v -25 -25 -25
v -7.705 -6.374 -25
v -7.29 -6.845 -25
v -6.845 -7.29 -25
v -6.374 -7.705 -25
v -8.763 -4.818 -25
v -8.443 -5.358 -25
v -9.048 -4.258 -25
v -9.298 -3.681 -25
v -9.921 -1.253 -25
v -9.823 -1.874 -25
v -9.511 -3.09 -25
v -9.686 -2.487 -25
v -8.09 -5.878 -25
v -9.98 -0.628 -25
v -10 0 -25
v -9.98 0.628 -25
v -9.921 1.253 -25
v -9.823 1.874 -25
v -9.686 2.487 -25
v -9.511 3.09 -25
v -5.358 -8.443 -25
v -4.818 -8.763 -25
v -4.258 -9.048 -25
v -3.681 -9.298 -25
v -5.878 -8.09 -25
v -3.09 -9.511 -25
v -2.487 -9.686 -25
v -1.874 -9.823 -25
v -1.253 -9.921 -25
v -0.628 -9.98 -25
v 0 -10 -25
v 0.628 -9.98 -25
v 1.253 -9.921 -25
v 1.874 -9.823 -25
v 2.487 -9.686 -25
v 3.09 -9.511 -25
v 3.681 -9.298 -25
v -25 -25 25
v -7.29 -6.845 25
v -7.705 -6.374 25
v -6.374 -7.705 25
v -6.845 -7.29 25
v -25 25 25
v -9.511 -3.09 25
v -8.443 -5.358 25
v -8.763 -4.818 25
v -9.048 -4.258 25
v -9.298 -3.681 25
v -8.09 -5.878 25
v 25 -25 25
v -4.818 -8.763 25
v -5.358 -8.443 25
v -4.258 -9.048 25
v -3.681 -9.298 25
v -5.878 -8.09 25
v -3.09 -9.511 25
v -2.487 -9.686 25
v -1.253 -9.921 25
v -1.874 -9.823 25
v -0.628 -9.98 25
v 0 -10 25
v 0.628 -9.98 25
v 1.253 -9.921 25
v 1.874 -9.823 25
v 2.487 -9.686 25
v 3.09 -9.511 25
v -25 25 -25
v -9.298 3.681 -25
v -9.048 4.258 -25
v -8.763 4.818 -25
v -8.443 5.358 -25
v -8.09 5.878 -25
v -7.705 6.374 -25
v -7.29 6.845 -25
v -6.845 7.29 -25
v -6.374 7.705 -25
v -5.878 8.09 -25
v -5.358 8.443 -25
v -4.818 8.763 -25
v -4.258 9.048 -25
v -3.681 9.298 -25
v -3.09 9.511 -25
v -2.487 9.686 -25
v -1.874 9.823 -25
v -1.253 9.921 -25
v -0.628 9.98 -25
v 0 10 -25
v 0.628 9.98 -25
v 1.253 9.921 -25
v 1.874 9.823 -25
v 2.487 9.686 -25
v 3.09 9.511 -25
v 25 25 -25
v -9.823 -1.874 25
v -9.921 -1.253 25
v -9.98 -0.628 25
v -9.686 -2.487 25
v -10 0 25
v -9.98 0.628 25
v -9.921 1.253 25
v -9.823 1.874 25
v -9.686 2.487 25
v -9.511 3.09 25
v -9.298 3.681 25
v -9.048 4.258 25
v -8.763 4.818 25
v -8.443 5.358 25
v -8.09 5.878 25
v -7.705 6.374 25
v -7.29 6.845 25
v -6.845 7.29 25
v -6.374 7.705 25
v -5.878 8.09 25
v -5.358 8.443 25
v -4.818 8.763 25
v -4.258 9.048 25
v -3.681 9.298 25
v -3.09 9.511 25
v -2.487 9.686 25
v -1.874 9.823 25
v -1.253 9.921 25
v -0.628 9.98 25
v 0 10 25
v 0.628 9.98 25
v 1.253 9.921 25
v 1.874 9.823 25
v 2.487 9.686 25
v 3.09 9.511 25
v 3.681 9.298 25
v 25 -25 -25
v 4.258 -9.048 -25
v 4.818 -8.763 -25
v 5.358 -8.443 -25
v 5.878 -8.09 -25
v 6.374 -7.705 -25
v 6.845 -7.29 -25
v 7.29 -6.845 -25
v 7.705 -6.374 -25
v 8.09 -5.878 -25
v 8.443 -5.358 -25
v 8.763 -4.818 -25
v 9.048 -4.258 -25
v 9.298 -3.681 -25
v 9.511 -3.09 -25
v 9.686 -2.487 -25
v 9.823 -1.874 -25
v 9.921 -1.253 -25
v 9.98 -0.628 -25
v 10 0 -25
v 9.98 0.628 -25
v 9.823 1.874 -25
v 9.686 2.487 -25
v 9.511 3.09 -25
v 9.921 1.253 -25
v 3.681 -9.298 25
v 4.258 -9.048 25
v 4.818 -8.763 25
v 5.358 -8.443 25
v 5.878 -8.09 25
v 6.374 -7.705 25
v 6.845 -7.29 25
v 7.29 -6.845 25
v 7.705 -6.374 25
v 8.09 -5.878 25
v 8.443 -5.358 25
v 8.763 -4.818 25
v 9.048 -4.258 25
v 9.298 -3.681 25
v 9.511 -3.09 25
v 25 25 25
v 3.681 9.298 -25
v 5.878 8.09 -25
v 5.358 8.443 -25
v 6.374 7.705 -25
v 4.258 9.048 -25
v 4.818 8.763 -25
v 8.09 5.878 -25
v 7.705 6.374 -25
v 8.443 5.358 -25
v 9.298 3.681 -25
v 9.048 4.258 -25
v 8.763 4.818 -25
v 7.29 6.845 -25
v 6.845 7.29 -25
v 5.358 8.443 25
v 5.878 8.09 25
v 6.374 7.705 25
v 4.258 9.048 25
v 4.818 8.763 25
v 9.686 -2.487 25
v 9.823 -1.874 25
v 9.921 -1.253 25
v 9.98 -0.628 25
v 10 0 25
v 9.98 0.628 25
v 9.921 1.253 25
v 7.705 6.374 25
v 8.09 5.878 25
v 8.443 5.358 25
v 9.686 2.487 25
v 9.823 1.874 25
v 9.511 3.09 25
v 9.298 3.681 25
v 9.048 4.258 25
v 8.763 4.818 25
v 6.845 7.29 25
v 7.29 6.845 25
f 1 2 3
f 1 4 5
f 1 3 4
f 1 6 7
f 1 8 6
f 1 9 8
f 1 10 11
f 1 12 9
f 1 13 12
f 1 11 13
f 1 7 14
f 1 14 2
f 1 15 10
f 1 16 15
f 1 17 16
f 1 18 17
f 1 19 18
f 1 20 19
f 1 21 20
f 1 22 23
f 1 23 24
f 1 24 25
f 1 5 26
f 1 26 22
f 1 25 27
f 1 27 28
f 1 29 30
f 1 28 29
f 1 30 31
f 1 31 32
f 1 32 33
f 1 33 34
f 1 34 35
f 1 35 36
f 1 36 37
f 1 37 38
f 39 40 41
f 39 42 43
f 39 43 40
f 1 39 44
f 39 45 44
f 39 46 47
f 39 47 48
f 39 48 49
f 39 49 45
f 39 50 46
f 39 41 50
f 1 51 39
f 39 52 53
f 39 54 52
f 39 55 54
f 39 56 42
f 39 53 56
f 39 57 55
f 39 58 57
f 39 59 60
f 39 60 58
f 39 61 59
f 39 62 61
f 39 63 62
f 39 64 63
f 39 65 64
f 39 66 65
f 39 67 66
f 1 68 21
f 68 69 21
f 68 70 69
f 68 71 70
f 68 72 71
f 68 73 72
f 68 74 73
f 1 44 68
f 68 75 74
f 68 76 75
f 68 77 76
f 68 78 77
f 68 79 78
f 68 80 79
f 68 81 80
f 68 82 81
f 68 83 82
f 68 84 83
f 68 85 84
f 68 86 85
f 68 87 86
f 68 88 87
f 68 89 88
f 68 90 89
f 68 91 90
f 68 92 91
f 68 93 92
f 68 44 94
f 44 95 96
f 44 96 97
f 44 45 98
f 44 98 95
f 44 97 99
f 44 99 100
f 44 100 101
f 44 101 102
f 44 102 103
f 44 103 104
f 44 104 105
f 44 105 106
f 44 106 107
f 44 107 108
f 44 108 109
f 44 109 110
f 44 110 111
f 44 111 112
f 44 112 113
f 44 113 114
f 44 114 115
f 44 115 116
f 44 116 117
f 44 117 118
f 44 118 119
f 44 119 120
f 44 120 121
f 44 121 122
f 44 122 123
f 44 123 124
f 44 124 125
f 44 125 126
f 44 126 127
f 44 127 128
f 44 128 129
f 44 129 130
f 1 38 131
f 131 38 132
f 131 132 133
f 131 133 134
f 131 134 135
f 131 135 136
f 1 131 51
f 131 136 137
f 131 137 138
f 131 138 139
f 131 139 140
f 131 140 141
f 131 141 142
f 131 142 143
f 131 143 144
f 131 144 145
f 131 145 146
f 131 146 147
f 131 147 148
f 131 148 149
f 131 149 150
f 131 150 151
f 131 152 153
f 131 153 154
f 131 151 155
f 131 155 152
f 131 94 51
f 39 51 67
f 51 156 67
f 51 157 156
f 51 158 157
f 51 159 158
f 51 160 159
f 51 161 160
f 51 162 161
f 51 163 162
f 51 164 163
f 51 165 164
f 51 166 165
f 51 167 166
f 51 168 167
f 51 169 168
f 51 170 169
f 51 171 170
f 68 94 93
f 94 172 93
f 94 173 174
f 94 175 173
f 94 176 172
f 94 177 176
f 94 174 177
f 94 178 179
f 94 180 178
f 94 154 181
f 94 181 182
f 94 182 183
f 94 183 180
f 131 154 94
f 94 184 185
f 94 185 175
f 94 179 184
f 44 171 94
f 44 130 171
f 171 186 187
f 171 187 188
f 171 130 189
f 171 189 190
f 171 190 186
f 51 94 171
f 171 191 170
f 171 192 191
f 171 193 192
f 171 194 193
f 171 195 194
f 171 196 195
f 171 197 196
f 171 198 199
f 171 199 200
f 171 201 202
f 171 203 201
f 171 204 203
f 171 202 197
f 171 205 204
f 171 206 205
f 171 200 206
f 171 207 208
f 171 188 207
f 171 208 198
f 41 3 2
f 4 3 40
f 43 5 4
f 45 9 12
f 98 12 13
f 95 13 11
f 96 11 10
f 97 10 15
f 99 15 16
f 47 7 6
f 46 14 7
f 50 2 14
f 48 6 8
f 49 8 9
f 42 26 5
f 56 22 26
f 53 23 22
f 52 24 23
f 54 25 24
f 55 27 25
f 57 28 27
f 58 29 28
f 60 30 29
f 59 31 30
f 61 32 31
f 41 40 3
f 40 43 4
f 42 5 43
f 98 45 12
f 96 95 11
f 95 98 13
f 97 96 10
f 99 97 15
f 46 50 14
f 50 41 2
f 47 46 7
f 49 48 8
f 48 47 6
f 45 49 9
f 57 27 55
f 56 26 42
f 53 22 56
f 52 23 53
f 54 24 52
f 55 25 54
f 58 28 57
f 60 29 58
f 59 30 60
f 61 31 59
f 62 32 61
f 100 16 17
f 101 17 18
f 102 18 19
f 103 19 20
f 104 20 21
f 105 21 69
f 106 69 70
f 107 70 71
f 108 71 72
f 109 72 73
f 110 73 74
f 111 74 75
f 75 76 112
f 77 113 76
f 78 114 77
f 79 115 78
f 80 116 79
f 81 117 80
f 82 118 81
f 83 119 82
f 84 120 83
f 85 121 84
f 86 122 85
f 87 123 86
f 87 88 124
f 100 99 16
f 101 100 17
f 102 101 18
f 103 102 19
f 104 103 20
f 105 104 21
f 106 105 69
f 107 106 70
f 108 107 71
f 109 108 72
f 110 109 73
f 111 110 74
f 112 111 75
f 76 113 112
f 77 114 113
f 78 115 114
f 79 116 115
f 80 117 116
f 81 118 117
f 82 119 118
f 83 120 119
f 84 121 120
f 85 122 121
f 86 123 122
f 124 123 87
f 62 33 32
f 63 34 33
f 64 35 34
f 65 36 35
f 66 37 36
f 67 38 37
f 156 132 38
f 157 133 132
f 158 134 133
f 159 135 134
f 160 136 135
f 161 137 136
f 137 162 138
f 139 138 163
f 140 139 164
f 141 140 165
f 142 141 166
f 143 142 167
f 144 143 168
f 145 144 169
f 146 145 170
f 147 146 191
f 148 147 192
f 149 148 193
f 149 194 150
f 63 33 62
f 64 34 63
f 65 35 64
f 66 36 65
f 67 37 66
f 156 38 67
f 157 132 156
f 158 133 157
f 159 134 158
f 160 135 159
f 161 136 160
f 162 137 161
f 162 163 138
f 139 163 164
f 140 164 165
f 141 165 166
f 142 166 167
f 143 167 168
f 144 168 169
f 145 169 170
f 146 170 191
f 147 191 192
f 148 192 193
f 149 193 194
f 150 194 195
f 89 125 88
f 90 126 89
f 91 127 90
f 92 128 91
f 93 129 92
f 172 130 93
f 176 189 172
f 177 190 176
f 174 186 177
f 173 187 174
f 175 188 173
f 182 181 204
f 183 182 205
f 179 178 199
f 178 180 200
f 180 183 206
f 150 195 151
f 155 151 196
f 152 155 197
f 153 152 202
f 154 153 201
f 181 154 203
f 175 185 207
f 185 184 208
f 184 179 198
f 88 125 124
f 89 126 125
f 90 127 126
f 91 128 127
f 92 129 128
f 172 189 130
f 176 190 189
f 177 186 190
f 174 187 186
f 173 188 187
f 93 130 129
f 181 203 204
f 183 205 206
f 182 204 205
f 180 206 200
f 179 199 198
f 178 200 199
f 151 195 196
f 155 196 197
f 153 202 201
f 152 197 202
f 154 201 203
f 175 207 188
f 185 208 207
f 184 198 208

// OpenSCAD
// 50mm角の立方体に、中央をz軸方向に貫通する直径20mmの穴
$fn = 100;

cube_size = 50;
hole_d = 20;

difference() {
    // 立方体（原点中心）
    cube([cube_size, cube_size, cube_size], center = true);

    // z軸方向の貫通穴（少し長めにして確実に貫通させる）
    cylinder(h = cube_size + 2, d = hole_d, center = true);
}
